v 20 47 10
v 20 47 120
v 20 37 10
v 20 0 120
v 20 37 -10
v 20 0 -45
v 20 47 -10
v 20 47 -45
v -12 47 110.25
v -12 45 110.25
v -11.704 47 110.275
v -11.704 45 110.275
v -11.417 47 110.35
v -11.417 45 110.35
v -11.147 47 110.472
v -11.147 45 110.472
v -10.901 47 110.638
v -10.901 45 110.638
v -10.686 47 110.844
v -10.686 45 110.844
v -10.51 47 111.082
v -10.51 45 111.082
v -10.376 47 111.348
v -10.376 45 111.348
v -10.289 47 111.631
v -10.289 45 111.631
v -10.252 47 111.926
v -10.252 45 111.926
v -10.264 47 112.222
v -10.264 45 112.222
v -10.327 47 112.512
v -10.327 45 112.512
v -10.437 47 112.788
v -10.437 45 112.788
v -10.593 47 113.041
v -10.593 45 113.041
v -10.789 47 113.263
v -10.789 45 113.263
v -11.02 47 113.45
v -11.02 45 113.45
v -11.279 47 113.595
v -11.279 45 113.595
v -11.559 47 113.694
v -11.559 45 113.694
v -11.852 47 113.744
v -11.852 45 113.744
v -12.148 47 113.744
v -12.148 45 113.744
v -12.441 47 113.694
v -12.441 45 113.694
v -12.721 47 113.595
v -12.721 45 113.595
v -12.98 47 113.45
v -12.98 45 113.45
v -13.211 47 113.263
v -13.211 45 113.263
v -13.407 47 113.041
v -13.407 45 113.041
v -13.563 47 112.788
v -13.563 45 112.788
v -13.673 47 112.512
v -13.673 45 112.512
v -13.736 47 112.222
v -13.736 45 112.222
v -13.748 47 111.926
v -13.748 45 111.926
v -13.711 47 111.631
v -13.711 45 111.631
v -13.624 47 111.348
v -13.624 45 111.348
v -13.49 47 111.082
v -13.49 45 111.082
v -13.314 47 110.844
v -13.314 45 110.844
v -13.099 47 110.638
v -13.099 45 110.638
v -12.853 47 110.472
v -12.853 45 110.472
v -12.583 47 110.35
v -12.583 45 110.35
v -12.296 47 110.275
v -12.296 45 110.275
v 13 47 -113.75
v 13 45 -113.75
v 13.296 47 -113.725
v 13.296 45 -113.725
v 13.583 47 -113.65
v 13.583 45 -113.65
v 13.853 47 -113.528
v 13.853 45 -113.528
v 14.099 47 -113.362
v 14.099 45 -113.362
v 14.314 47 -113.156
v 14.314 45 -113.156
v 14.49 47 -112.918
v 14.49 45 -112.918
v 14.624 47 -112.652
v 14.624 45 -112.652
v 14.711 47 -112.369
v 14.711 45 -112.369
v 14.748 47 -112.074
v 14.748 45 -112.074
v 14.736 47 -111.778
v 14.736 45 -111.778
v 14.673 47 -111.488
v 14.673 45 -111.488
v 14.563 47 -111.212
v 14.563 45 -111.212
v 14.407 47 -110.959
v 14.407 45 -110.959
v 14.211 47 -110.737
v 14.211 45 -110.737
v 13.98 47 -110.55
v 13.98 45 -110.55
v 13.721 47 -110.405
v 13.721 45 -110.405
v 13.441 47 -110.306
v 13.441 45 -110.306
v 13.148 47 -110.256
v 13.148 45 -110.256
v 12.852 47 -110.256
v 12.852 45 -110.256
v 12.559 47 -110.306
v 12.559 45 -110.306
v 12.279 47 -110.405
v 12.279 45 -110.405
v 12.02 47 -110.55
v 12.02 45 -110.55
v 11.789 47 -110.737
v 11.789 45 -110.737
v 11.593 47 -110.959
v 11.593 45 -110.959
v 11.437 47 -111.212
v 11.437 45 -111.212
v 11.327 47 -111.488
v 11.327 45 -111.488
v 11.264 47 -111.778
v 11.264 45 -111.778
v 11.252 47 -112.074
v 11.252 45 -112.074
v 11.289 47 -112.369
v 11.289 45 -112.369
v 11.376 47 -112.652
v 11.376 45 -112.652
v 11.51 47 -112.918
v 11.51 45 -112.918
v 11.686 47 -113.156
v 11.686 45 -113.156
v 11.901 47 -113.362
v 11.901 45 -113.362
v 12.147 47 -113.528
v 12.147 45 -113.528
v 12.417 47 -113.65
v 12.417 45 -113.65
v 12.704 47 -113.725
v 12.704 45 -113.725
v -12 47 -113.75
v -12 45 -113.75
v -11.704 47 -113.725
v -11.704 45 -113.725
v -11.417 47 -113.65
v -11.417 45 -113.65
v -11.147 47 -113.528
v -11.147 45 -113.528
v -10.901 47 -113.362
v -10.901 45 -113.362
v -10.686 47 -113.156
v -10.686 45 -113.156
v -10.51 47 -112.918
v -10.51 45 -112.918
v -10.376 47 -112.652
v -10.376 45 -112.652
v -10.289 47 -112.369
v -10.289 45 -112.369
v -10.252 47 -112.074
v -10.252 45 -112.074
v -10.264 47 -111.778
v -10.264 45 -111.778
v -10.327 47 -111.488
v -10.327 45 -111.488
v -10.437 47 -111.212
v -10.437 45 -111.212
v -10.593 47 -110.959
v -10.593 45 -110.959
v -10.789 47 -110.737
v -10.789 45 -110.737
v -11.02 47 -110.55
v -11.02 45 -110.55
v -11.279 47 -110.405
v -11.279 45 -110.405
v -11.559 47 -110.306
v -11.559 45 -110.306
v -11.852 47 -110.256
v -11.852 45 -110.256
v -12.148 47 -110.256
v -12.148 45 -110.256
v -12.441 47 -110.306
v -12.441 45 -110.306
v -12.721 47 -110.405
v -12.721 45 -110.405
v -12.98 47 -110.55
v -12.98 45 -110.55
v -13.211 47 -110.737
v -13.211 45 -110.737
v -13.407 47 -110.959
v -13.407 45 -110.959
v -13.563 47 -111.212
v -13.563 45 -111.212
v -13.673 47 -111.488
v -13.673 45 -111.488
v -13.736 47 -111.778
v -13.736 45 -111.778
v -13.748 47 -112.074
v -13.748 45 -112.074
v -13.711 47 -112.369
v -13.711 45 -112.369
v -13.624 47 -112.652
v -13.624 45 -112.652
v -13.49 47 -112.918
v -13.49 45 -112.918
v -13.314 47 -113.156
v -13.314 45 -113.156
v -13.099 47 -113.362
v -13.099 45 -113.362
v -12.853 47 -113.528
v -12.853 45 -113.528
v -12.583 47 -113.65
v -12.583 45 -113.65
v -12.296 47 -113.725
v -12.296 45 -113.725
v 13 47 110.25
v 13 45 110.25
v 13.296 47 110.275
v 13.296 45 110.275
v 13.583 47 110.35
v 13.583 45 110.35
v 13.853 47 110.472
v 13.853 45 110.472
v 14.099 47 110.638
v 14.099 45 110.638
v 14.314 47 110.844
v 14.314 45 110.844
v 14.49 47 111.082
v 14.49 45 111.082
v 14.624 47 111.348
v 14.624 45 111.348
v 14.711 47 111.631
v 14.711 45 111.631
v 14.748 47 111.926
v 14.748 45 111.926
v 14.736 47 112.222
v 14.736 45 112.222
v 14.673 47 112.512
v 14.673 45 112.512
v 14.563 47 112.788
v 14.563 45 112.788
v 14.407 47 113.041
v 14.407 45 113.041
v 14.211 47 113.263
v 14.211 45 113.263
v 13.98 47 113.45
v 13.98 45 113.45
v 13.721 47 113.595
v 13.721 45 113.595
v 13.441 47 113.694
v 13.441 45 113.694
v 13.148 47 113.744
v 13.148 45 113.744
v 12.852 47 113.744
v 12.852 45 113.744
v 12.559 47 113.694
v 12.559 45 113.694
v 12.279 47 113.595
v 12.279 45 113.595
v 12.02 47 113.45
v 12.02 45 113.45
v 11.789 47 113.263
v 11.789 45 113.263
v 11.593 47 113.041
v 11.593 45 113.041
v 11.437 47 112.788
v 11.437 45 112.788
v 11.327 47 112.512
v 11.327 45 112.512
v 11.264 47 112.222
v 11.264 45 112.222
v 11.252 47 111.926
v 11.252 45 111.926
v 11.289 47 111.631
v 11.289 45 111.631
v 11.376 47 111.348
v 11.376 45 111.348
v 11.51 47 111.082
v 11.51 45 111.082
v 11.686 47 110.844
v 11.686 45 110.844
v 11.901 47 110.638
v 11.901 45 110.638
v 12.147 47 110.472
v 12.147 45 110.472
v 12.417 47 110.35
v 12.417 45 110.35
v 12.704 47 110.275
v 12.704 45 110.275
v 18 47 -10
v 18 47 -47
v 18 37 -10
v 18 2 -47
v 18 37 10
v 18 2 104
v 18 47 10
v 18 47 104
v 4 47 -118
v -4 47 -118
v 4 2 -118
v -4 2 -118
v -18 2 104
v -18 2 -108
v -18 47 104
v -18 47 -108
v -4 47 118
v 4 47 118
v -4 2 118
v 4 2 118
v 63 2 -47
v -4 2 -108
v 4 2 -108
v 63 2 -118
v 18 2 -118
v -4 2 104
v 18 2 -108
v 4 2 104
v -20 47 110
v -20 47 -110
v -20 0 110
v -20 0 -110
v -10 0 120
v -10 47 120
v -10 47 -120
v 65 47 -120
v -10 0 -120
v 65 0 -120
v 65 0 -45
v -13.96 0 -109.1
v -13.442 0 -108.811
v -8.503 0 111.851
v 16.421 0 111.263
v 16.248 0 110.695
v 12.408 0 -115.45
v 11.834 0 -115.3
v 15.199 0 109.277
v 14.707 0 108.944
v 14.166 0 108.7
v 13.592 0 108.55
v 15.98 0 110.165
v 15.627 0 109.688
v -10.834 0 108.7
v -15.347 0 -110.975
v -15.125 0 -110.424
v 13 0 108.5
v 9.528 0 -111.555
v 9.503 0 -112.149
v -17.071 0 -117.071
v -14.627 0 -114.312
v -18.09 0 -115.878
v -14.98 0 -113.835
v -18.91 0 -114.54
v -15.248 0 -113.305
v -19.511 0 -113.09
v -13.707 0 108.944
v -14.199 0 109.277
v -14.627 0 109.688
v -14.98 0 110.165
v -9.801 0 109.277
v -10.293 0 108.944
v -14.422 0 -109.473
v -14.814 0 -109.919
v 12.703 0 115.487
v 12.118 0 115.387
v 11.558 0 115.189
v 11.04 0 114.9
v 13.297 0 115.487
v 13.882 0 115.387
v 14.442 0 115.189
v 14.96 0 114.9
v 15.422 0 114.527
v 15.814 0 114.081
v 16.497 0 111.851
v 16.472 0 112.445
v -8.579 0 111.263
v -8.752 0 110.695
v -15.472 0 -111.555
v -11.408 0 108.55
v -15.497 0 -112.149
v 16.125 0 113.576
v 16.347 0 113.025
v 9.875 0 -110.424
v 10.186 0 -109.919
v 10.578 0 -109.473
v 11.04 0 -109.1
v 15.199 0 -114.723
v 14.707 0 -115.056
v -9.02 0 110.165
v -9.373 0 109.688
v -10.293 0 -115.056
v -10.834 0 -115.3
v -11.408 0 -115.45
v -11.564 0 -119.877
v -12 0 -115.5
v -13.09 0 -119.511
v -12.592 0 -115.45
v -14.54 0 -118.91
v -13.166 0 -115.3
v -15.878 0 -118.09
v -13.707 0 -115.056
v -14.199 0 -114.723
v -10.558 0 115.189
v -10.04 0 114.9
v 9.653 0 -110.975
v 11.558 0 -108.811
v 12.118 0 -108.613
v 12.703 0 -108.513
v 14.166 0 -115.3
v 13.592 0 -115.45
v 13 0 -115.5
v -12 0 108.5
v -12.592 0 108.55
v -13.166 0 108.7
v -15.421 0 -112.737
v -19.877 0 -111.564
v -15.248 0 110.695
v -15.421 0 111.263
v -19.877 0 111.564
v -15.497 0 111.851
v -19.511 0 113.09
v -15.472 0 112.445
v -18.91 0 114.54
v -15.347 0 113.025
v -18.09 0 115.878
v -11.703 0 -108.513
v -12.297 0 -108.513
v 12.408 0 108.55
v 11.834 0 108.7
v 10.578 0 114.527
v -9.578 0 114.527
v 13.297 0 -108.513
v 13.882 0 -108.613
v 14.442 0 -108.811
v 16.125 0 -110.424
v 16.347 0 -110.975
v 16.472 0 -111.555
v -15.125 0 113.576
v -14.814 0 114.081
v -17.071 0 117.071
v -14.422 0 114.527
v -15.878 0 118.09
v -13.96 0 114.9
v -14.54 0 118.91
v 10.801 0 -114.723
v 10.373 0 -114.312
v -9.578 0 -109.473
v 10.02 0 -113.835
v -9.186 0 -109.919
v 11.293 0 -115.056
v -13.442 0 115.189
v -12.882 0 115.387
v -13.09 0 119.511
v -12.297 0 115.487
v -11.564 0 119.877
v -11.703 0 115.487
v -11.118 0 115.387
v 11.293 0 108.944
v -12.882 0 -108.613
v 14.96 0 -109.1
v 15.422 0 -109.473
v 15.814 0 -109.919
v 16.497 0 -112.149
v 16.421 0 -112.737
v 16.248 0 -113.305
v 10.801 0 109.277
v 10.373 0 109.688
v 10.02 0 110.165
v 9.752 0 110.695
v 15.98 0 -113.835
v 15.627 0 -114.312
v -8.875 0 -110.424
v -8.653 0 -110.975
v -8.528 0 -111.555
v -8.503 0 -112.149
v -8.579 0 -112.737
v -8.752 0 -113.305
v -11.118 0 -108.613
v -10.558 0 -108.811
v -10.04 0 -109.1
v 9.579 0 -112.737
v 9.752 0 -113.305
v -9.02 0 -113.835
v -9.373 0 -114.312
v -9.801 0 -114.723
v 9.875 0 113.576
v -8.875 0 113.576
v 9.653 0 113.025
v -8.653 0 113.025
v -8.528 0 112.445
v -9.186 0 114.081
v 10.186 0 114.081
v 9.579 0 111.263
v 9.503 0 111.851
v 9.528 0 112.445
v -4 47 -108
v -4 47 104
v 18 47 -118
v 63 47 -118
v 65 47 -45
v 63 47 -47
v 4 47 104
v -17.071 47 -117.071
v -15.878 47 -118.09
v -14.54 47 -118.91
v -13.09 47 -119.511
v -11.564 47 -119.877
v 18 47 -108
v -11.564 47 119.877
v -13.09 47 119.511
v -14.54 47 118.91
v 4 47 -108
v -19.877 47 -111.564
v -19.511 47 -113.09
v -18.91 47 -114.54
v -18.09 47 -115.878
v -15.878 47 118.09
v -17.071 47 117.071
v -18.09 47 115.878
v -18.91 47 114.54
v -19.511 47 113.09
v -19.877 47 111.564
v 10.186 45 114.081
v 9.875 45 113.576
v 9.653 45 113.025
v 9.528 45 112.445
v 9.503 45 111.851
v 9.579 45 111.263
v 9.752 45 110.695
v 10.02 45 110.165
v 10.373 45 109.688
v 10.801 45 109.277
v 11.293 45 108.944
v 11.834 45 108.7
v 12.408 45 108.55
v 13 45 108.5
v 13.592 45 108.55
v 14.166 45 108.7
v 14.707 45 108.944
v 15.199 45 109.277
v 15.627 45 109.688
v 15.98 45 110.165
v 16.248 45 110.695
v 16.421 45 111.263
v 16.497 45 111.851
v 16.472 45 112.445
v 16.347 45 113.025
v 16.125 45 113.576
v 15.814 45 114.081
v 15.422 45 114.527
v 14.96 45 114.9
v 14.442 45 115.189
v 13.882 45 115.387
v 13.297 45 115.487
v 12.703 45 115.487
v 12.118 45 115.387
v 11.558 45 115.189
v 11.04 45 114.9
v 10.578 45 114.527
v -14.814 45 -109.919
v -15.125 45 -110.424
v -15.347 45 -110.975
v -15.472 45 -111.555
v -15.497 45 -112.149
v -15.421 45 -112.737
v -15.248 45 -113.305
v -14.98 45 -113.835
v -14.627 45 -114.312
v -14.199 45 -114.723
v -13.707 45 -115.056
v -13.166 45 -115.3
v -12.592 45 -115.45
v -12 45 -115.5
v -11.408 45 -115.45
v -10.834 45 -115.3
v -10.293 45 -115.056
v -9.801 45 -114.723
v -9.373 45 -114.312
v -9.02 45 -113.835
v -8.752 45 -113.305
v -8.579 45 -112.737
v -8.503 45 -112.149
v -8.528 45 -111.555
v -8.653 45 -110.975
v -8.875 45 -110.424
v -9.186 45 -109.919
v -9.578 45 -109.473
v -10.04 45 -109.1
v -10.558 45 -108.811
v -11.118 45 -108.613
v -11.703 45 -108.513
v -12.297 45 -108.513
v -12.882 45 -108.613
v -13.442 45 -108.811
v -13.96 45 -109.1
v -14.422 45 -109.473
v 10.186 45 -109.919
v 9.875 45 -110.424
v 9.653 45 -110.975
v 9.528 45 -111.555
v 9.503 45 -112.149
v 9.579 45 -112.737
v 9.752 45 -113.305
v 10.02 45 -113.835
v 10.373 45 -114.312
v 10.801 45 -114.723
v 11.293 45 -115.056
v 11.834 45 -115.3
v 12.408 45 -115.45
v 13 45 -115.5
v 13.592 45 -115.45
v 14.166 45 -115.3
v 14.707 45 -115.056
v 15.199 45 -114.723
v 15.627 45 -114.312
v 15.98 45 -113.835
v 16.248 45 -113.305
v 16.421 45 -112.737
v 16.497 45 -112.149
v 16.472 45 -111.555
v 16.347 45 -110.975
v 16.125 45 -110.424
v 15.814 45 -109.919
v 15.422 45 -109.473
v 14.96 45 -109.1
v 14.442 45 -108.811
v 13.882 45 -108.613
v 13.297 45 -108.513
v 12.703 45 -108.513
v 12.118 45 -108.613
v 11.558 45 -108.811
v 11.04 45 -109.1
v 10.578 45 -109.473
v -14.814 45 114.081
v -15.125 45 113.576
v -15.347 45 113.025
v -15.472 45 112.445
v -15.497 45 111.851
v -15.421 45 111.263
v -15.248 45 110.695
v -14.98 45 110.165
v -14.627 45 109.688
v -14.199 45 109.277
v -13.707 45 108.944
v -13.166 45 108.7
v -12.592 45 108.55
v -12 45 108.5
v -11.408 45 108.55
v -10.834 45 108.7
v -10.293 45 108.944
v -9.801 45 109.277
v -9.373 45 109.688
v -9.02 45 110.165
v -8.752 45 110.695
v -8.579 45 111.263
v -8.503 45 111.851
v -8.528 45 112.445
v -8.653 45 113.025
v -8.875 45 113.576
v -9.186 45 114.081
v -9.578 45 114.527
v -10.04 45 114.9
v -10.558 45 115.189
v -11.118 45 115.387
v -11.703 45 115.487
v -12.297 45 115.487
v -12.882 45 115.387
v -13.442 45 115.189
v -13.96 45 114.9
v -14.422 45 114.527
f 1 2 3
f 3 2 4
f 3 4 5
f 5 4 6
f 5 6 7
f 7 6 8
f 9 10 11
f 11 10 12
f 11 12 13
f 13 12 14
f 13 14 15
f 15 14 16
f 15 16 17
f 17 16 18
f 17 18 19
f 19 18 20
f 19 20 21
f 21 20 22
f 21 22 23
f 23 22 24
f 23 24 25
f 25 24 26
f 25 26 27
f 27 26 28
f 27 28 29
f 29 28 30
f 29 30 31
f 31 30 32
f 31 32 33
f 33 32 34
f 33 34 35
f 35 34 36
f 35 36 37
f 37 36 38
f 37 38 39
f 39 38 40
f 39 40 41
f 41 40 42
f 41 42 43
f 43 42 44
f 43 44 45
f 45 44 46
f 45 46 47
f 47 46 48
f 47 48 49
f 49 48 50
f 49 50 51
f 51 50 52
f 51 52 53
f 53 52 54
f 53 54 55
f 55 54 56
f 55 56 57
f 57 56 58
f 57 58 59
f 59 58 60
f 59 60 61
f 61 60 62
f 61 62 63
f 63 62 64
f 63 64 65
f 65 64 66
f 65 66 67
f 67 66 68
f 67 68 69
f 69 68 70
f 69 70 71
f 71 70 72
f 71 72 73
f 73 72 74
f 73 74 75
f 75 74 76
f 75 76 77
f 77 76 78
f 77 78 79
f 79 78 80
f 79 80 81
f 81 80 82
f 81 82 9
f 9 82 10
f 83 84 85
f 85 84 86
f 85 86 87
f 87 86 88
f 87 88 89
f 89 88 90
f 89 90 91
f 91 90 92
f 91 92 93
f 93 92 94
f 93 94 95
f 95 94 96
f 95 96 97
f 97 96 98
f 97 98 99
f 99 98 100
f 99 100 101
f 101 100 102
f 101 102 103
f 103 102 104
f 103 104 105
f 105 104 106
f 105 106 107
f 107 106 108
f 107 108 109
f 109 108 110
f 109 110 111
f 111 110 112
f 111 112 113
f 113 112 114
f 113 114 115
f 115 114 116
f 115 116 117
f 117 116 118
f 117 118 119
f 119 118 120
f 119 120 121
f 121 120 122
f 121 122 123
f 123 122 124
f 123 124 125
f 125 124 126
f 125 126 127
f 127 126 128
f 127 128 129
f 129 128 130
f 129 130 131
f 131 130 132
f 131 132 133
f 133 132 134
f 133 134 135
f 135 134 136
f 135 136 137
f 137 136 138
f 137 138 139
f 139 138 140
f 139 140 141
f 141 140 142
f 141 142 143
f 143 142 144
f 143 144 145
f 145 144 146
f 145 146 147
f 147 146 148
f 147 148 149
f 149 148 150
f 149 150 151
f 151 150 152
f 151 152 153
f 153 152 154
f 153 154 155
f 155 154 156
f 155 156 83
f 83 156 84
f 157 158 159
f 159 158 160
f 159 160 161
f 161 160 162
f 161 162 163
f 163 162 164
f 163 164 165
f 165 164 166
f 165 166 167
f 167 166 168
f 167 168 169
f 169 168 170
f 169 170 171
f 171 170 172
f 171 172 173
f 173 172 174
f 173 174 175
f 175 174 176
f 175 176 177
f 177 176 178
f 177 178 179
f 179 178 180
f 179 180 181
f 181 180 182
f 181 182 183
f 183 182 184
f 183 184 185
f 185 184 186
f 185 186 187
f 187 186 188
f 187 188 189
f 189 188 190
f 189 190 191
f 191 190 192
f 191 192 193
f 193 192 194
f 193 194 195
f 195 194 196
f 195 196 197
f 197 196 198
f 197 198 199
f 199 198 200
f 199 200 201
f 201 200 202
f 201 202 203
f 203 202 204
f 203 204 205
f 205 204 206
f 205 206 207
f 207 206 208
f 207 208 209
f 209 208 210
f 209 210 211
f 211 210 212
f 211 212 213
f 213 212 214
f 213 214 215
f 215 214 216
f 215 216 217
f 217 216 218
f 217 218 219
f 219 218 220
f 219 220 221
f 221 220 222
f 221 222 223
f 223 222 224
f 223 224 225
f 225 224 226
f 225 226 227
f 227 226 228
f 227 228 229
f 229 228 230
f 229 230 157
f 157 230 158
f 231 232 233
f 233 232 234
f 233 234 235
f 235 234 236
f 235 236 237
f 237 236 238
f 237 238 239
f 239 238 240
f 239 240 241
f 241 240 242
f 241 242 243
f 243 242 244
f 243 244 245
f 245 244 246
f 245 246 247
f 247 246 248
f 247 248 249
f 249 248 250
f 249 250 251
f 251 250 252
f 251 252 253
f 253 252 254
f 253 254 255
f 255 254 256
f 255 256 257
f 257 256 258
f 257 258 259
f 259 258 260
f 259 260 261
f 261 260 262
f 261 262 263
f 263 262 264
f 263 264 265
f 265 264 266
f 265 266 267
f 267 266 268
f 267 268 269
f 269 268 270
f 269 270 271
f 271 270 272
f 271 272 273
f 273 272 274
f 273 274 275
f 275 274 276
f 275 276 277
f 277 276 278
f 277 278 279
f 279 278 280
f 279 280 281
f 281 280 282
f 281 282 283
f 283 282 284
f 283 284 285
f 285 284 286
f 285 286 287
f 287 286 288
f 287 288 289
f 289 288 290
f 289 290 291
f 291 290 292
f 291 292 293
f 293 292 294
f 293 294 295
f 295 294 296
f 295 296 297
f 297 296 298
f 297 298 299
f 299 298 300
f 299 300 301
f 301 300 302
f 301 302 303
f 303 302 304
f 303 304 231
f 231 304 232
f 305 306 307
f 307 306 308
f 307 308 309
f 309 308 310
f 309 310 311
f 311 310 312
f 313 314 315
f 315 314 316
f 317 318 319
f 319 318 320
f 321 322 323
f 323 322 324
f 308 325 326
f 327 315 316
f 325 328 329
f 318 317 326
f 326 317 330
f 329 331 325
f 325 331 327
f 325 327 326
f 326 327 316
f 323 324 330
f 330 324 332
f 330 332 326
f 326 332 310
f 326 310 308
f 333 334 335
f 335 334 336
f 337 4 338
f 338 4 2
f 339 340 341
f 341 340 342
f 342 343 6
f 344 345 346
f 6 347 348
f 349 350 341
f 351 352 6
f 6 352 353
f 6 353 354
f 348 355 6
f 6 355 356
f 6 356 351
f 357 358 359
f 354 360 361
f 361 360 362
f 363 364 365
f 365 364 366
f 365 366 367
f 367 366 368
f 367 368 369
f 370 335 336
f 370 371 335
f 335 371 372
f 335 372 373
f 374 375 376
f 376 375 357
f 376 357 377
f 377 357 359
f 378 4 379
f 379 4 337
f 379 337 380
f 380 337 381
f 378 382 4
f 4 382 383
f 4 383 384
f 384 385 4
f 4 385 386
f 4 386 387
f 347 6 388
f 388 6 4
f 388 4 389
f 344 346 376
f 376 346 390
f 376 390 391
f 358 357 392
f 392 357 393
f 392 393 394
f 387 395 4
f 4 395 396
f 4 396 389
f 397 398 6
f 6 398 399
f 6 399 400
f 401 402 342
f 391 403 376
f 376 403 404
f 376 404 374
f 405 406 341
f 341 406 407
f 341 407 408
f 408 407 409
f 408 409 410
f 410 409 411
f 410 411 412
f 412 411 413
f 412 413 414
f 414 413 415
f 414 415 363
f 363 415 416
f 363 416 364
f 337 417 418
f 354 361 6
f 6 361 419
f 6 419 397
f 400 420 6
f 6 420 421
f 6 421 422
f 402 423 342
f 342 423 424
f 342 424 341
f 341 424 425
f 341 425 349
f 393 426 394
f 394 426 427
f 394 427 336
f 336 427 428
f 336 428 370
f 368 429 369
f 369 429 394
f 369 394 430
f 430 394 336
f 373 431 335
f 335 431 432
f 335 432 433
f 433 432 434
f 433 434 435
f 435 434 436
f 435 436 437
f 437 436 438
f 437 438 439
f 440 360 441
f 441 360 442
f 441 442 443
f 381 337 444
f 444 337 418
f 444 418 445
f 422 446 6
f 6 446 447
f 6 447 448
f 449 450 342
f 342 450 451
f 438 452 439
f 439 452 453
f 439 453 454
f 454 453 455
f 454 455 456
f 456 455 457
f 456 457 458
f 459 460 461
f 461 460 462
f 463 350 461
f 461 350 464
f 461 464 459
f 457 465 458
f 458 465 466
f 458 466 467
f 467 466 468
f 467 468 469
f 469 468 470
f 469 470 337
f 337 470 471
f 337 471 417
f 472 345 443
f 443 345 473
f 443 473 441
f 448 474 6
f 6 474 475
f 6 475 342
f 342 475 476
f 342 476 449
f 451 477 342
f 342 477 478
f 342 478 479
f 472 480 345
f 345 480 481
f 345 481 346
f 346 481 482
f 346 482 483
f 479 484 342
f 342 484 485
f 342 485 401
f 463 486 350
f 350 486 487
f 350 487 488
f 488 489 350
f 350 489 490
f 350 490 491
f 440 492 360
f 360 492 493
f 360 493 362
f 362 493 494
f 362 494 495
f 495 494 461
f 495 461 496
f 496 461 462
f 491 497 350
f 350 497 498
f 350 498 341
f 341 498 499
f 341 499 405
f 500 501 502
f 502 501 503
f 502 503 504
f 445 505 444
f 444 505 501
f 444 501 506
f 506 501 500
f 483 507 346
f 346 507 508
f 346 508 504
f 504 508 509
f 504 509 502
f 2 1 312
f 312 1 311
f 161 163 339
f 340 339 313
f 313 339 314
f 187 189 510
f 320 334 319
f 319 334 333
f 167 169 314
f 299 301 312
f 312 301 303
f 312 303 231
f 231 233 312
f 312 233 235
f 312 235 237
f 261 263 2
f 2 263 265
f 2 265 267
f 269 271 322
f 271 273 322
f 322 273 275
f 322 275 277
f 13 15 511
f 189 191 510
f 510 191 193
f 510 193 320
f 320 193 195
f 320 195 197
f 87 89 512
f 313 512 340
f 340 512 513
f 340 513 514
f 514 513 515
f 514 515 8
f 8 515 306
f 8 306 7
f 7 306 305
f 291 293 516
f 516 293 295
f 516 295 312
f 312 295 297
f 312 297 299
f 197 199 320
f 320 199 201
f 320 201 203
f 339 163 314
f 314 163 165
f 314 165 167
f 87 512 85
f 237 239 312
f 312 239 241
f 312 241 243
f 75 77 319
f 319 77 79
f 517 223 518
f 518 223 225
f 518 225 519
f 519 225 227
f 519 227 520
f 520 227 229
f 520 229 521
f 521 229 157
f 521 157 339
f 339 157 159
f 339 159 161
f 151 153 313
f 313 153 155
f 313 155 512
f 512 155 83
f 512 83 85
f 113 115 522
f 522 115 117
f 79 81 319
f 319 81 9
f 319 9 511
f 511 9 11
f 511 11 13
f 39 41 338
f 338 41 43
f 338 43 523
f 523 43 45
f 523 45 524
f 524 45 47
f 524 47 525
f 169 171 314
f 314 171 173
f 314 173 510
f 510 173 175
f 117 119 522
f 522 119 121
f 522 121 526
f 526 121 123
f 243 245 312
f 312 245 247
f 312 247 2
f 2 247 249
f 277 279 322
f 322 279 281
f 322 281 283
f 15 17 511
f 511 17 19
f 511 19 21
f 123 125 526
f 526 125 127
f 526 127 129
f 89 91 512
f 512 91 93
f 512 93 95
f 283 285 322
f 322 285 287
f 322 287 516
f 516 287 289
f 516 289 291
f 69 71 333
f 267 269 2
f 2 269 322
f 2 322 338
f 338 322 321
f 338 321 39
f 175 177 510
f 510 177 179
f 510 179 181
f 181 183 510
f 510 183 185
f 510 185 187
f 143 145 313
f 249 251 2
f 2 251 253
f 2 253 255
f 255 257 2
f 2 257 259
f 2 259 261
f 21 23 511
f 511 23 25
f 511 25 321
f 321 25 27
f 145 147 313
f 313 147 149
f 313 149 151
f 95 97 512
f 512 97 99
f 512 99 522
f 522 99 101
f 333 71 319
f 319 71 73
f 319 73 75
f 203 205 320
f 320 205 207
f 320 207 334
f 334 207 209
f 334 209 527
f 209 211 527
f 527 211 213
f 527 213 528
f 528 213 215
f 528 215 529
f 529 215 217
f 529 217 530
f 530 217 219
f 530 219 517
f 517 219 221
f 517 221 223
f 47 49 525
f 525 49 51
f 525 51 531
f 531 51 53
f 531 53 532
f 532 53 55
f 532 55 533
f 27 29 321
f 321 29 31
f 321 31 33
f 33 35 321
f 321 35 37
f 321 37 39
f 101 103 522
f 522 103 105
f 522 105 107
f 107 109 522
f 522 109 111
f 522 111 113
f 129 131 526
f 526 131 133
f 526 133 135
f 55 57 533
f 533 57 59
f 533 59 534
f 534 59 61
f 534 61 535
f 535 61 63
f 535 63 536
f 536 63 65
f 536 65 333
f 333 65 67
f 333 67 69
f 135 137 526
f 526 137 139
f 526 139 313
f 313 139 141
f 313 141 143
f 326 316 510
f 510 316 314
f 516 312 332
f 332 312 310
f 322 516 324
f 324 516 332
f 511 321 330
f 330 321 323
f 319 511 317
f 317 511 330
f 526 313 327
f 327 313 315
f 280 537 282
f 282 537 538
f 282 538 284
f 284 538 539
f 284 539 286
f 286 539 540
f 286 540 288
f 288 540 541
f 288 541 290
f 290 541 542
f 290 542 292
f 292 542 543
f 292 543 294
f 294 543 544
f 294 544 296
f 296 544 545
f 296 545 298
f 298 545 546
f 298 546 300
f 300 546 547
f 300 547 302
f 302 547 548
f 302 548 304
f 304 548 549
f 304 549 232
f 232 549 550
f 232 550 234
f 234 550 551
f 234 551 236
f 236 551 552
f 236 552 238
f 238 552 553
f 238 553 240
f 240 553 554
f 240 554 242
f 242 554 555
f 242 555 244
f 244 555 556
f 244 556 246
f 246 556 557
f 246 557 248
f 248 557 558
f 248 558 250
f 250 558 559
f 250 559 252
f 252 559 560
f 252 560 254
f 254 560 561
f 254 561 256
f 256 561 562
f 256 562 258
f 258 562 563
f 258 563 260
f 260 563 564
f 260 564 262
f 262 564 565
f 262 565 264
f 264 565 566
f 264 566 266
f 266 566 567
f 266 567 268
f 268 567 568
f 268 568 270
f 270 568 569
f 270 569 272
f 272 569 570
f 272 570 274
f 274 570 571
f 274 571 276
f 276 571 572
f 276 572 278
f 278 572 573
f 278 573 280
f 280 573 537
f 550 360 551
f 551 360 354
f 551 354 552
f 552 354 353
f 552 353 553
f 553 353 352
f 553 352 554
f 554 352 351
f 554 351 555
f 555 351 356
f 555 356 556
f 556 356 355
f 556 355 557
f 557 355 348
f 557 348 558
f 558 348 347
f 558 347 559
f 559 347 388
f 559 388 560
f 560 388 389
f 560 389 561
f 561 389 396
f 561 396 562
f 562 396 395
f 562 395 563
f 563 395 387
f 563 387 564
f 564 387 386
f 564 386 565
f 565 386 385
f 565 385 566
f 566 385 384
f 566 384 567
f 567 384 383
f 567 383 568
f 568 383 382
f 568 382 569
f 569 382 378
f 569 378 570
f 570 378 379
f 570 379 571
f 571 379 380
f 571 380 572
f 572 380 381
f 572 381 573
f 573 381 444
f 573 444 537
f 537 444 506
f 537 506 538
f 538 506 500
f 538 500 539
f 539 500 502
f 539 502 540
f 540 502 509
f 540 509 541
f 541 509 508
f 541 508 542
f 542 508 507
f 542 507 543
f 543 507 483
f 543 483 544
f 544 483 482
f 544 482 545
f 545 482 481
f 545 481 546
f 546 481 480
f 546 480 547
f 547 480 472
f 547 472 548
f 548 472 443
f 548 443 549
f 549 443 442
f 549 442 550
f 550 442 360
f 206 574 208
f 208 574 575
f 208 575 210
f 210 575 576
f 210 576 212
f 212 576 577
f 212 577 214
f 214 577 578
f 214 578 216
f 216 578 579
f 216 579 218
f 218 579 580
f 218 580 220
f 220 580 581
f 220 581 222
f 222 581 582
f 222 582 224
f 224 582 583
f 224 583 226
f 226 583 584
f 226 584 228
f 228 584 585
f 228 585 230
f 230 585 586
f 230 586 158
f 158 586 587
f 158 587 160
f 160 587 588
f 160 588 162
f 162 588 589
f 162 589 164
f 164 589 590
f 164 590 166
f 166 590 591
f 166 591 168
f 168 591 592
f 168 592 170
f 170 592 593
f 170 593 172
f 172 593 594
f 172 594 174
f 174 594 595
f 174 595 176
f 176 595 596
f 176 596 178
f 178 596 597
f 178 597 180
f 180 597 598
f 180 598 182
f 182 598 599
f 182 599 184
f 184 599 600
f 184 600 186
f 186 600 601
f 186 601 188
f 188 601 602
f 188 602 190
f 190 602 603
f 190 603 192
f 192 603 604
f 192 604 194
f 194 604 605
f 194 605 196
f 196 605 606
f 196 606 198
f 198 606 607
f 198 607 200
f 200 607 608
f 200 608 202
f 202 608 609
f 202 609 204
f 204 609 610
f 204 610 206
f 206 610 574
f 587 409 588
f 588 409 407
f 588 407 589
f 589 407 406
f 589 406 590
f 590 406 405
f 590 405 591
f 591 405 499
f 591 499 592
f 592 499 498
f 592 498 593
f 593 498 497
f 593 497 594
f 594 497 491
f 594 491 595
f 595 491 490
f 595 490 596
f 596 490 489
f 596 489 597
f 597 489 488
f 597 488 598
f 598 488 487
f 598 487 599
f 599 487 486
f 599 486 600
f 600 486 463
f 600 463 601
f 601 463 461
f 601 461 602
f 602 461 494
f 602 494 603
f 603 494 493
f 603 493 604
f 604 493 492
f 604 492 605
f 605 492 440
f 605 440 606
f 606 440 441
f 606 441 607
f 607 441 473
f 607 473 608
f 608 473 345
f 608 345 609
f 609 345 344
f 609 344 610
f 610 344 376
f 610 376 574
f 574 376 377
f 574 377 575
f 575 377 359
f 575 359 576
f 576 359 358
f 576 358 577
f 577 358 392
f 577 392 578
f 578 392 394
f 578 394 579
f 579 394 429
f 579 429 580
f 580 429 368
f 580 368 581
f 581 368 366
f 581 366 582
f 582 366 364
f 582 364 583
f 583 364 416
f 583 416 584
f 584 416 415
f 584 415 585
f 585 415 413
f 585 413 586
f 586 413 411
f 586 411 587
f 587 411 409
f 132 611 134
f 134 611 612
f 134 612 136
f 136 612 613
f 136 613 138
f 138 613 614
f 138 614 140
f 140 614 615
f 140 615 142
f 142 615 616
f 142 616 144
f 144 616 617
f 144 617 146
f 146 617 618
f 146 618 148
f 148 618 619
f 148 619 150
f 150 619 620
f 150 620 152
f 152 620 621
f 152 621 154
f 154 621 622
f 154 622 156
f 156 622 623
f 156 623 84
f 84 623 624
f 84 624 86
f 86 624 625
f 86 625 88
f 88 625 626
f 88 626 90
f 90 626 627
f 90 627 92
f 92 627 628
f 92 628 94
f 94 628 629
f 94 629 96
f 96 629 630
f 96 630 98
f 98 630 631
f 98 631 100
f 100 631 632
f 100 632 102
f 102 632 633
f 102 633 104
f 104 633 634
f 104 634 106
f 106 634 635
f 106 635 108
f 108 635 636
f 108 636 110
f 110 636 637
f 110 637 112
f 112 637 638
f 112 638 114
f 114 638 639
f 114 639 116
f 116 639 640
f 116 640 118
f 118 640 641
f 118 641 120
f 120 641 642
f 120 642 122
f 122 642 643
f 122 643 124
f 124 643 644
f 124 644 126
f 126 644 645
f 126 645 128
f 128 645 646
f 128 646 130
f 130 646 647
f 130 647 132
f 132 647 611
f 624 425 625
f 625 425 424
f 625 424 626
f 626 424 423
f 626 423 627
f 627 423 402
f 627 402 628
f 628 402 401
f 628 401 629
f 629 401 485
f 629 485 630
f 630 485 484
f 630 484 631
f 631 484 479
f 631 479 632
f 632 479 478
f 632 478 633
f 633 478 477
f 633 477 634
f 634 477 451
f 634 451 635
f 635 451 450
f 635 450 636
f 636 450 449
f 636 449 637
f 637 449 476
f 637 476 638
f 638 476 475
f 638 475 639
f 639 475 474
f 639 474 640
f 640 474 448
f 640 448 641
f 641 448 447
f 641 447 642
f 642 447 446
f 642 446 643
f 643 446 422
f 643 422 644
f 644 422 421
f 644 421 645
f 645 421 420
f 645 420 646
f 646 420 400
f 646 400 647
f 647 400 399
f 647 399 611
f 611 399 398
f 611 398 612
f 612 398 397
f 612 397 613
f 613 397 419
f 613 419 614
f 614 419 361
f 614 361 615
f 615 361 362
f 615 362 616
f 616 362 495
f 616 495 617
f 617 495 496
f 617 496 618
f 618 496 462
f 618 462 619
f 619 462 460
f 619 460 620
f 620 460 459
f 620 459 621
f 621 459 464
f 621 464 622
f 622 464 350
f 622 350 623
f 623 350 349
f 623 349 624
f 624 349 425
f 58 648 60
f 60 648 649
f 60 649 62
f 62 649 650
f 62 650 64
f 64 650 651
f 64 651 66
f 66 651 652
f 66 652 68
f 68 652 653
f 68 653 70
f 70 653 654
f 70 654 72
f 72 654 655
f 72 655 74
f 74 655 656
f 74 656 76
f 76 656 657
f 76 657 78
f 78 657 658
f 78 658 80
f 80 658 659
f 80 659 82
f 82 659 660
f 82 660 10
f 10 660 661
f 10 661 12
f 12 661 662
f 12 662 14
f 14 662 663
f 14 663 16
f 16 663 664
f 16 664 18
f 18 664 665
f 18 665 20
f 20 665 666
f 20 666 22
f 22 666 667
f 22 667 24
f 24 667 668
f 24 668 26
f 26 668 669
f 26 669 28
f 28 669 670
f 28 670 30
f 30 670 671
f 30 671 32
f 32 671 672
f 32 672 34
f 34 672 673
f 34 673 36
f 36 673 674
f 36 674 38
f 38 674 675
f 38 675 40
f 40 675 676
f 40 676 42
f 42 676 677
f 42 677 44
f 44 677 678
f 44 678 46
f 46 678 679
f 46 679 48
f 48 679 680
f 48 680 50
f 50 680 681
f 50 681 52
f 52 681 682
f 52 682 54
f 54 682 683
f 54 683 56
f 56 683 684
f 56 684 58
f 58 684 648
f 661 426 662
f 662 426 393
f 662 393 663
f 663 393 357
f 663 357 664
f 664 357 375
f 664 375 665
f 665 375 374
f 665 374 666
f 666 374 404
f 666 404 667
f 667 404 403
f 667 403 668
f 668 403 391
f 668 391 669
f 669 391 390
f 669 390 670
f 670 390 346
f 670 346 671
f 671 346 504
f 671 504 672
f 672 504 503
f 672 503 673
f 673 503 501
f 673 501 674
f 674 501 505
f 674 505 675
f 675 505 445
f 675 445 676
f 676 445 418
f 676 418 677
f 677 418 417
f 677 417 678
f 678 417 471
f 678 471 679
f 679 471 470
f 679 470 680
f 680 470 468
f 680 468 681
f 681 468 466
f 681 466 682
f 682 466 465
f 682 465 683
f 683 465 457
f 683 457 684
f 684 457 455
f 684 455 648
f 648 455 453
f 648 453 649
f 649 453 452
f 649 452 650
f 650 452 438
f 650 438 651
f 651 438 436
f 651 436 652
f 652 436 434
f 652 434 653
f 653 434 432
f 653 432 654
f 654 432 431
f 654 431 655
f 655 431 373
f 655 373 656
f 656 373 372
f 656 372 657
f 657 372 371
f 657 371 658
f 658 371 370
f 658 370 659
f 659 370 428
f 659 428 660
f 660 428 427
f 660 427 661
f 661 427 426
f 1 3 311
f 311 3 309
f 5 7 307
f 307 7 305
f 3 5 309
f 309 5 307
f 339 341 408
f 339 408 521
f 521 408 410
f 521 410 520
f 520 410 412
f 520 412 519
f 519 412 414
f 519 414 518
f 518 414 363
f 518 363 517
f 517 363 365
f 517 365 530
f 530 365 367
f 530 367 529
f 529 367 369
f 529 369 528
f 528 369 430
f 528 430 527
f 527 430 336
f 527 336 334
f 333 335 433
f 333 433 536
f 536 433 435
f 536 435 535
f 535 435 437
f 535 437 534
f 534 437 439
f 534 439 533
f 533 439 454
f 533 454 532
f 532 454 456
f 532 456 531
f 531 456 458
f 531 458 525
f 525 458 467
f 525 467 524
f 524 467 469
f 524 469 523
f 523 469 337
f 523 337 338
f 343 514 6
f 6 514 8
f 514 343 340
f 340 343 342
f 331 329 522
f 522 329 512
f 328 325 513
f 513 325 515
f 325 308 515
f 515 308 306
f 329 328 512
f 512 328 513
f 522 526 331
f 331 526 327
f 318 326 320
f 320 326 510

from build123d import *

# Parameters (mm, degrees)
SKETCH1_W           = 40
SKETCH1_H           = 240
BOSS_EXTRUDE2_DEPTH = 2
SKETCH2_W           = 40
SKETCH2_H           = 240
SKETCH2_W_2         = 36
SKETCH2_H_2         = 236
BOSS_EXTRUDE4_DEPTH = 45
SKETCH3_W           = 14
SKETCH3_H           = 14
BOSS_EXTRUDE5_DEPTH = 45
SKETCH4_R           = 1.75
CUT_EXTRUDE1_DEPTH  = 90
SKETCH5_R           = 3.5
CUT_EXTRUDE2_DEPTH  = 45
SKETCH6_W           = 20
SKETCH6_H           = 10
CUT_EXTRUDE3_DEPTH  = 10
FILLET3_R           = 10
FILLET4_R           = 10
SKETCH7_W           = 75
SKETCH7_H           = 47
BOSS_EXTRUDE6_DEPTH = 45
SKETCH8_W           = 45
SKETCH8_H           = 71
CUT_EXTRUDE4_DEPTH  = 45
SKETCH9_W           = 36
SKETCH9_H           = 4
CUT_EXTRUDE5_DEPTH  = 45


with BuildPart() as part:
    # Sketch1 → Boss-Extrude2 (new body)
    with BuildSketch(Plane(origin=(0, 0, 0), x_dir=(1, 0, 0), z_dir=(0, 1, 0))):
        Rectangle(SKETCH1_W, SKETCH1_H)
    extrude(amount=BOSS_EXTRUDE2_DEPTH)

    # Sketch2 → Boss-Extrude4 (add)
    with BuildSketch(Plane(origin=(0, 2, 0), x_dir=(1, 0, 0), z_dir=(0, 1, 0))):
        Rectangle(SKETCH2_W, SKETCH2_H)
        Rectangle(SKETCH2_W_2, SKETCH2_H_2, mode=Mode.SUBTRACT)
    extrude(amount=BOSS_EXTRUDE4_DEPTH)

    # Sketch3 → Boss-Extrude5 (add)
    with BuildSketch(Plane(origin=(0, 2, 0), x_dir=(1, 0, 0), z_dir=(0, 1, 0))):
        with Locations((-11, 111)):
            Rectangle(SKETCH3_W, SKETCH3_H)
        with Locations((11, 111)):
            Rectangle(SKETCH3_W, SKETCH3_H)
        with Locations((-11, -111)):
            Rectangle(SKETCH3_W, SKETCH3_H)
        with Locations((11, -111)):
            Rectangle(SKETCH3_W, SKETCH3_H)
    extrude(amount=BOSS_EXTRUDE5_DEPTH)

    # Sketch4 → Cut-Extrude1 (cut)
    with BuildSketch(Plane(origin=(0, 0, 0), x_dir=(-1, 0, 0), z_dir=(0, -1, 0))):
        with Locations(Location((12, -112, 0), (0, 0, 90))):
            Circle(SKETCH4_R)
        with Locations(Location((-13, -112, 0), (0, 0, 90))):
            Circle(SKETCH4_R)
        with Locations(Location((12, 112, 0), (0, 0, 90))):
            Circle(SKETCH4_R)
        with Locations(Location((-13, 112, 0), (0, 0, 90))):
            Circle(SKETCH4_R)
    extrude(amount=-CUT_EXTRUDE1_DEPTH, mode=Mode.SUBTRACT)

    # Sketch5 → Cut-Extrude2 (cut)
    with BuildSketch(Plane(origin=(0, 0, 0), x_dir=(-1, 0, 0), z_dir=(0, -1, 0))):
        with Locations(Location((12, -112, 0), (0, 0, 90))):
            Circle(SKETCH5_R)
        with Locations(Location((-13, -112, 0), (0, 0, 90))):
            Circle(SKETCH5_R)
        with Locations(Location((12, 112, 0), (0, 0, 90))):
            Circle(SKETCH5_R)
        with Locations(Location((-13, 112, 0), (0, 0, 90))):
            Circle(SKETCH5_R)
    extrude(amount=-CUT_EXTRUDE2_DEPTH, mode=Mode.SUBTRACT)

    # Sketch6 → Cut-Extrude3 (cut)
    with BuildSketch(Plane(origin=(20, 0, 0), x_dir=(0, 0, -1), z_dir=(1, 0, 0))):
        with Locations((0, 42)):
            Rectangle(SKETCH6_W, SKETCH6_H)
    extrude(amount=-CUT_EXTRUDE3_DEPTH, mode=Mode.SUBTRACT)

    # Fillet3
    fillet3_edges = [part.edges().sort_by_distance(p)[0] for p in [
        (-20, 23.5, -120),
    ]]
    fillet(fillet3_edges, radius=FILLET3_R)

    # Fillet4
    fillet4_edges = [part.edges().sort_by_distance(p)[0] for p in [
        (-20, 23.5, 120),
    ]]
    fillet(fillet4_edges, radius=FILLET4_R)

    # Sketch7 → Boss-Extrude6 (add)
    with BuildSketch(Plane(origin=(20, 0, 0), x_dir=(0, 0, -1), z_dir=(1, 0, 0))):
        with Locations((82.5, 23.5)):
            Rectangle(SKETCH7_W, SKETCH7_H)
    extrude(amount=BOSS_EXTRUDE6_DEPTH)

    # Sketch8 → Cut-Extrude4 (cut)
    with BuildSketch(Plane(origin=(0, 47, 0), x_dir=(1, 0, 0), z_dir=(0, 1, 0))):
        with Locations((40.5, 82.5)):
            Rectangle(SKETCH8_W, SKETCH8_H)
    extrude(amount=-CUT_EXTRUDE4_DEPTH, mode=Mode.SUBTRACT)

    # Sketch9 → Cut-Extrude5 (cut)
    with BuildSketch(Plane(origin=(0, 47, 0), x_dir=(1, 0, 0), z_dir=(0, 1, 0))):
        with Locations((0, 106)):
            Rectangle(SKETCH9_W, SKETCH9_H)
    extrude(amount=-CUT_EXTRUDE5_DEPTH, mode=Mode.SUBTRACT)


solid = part.part
